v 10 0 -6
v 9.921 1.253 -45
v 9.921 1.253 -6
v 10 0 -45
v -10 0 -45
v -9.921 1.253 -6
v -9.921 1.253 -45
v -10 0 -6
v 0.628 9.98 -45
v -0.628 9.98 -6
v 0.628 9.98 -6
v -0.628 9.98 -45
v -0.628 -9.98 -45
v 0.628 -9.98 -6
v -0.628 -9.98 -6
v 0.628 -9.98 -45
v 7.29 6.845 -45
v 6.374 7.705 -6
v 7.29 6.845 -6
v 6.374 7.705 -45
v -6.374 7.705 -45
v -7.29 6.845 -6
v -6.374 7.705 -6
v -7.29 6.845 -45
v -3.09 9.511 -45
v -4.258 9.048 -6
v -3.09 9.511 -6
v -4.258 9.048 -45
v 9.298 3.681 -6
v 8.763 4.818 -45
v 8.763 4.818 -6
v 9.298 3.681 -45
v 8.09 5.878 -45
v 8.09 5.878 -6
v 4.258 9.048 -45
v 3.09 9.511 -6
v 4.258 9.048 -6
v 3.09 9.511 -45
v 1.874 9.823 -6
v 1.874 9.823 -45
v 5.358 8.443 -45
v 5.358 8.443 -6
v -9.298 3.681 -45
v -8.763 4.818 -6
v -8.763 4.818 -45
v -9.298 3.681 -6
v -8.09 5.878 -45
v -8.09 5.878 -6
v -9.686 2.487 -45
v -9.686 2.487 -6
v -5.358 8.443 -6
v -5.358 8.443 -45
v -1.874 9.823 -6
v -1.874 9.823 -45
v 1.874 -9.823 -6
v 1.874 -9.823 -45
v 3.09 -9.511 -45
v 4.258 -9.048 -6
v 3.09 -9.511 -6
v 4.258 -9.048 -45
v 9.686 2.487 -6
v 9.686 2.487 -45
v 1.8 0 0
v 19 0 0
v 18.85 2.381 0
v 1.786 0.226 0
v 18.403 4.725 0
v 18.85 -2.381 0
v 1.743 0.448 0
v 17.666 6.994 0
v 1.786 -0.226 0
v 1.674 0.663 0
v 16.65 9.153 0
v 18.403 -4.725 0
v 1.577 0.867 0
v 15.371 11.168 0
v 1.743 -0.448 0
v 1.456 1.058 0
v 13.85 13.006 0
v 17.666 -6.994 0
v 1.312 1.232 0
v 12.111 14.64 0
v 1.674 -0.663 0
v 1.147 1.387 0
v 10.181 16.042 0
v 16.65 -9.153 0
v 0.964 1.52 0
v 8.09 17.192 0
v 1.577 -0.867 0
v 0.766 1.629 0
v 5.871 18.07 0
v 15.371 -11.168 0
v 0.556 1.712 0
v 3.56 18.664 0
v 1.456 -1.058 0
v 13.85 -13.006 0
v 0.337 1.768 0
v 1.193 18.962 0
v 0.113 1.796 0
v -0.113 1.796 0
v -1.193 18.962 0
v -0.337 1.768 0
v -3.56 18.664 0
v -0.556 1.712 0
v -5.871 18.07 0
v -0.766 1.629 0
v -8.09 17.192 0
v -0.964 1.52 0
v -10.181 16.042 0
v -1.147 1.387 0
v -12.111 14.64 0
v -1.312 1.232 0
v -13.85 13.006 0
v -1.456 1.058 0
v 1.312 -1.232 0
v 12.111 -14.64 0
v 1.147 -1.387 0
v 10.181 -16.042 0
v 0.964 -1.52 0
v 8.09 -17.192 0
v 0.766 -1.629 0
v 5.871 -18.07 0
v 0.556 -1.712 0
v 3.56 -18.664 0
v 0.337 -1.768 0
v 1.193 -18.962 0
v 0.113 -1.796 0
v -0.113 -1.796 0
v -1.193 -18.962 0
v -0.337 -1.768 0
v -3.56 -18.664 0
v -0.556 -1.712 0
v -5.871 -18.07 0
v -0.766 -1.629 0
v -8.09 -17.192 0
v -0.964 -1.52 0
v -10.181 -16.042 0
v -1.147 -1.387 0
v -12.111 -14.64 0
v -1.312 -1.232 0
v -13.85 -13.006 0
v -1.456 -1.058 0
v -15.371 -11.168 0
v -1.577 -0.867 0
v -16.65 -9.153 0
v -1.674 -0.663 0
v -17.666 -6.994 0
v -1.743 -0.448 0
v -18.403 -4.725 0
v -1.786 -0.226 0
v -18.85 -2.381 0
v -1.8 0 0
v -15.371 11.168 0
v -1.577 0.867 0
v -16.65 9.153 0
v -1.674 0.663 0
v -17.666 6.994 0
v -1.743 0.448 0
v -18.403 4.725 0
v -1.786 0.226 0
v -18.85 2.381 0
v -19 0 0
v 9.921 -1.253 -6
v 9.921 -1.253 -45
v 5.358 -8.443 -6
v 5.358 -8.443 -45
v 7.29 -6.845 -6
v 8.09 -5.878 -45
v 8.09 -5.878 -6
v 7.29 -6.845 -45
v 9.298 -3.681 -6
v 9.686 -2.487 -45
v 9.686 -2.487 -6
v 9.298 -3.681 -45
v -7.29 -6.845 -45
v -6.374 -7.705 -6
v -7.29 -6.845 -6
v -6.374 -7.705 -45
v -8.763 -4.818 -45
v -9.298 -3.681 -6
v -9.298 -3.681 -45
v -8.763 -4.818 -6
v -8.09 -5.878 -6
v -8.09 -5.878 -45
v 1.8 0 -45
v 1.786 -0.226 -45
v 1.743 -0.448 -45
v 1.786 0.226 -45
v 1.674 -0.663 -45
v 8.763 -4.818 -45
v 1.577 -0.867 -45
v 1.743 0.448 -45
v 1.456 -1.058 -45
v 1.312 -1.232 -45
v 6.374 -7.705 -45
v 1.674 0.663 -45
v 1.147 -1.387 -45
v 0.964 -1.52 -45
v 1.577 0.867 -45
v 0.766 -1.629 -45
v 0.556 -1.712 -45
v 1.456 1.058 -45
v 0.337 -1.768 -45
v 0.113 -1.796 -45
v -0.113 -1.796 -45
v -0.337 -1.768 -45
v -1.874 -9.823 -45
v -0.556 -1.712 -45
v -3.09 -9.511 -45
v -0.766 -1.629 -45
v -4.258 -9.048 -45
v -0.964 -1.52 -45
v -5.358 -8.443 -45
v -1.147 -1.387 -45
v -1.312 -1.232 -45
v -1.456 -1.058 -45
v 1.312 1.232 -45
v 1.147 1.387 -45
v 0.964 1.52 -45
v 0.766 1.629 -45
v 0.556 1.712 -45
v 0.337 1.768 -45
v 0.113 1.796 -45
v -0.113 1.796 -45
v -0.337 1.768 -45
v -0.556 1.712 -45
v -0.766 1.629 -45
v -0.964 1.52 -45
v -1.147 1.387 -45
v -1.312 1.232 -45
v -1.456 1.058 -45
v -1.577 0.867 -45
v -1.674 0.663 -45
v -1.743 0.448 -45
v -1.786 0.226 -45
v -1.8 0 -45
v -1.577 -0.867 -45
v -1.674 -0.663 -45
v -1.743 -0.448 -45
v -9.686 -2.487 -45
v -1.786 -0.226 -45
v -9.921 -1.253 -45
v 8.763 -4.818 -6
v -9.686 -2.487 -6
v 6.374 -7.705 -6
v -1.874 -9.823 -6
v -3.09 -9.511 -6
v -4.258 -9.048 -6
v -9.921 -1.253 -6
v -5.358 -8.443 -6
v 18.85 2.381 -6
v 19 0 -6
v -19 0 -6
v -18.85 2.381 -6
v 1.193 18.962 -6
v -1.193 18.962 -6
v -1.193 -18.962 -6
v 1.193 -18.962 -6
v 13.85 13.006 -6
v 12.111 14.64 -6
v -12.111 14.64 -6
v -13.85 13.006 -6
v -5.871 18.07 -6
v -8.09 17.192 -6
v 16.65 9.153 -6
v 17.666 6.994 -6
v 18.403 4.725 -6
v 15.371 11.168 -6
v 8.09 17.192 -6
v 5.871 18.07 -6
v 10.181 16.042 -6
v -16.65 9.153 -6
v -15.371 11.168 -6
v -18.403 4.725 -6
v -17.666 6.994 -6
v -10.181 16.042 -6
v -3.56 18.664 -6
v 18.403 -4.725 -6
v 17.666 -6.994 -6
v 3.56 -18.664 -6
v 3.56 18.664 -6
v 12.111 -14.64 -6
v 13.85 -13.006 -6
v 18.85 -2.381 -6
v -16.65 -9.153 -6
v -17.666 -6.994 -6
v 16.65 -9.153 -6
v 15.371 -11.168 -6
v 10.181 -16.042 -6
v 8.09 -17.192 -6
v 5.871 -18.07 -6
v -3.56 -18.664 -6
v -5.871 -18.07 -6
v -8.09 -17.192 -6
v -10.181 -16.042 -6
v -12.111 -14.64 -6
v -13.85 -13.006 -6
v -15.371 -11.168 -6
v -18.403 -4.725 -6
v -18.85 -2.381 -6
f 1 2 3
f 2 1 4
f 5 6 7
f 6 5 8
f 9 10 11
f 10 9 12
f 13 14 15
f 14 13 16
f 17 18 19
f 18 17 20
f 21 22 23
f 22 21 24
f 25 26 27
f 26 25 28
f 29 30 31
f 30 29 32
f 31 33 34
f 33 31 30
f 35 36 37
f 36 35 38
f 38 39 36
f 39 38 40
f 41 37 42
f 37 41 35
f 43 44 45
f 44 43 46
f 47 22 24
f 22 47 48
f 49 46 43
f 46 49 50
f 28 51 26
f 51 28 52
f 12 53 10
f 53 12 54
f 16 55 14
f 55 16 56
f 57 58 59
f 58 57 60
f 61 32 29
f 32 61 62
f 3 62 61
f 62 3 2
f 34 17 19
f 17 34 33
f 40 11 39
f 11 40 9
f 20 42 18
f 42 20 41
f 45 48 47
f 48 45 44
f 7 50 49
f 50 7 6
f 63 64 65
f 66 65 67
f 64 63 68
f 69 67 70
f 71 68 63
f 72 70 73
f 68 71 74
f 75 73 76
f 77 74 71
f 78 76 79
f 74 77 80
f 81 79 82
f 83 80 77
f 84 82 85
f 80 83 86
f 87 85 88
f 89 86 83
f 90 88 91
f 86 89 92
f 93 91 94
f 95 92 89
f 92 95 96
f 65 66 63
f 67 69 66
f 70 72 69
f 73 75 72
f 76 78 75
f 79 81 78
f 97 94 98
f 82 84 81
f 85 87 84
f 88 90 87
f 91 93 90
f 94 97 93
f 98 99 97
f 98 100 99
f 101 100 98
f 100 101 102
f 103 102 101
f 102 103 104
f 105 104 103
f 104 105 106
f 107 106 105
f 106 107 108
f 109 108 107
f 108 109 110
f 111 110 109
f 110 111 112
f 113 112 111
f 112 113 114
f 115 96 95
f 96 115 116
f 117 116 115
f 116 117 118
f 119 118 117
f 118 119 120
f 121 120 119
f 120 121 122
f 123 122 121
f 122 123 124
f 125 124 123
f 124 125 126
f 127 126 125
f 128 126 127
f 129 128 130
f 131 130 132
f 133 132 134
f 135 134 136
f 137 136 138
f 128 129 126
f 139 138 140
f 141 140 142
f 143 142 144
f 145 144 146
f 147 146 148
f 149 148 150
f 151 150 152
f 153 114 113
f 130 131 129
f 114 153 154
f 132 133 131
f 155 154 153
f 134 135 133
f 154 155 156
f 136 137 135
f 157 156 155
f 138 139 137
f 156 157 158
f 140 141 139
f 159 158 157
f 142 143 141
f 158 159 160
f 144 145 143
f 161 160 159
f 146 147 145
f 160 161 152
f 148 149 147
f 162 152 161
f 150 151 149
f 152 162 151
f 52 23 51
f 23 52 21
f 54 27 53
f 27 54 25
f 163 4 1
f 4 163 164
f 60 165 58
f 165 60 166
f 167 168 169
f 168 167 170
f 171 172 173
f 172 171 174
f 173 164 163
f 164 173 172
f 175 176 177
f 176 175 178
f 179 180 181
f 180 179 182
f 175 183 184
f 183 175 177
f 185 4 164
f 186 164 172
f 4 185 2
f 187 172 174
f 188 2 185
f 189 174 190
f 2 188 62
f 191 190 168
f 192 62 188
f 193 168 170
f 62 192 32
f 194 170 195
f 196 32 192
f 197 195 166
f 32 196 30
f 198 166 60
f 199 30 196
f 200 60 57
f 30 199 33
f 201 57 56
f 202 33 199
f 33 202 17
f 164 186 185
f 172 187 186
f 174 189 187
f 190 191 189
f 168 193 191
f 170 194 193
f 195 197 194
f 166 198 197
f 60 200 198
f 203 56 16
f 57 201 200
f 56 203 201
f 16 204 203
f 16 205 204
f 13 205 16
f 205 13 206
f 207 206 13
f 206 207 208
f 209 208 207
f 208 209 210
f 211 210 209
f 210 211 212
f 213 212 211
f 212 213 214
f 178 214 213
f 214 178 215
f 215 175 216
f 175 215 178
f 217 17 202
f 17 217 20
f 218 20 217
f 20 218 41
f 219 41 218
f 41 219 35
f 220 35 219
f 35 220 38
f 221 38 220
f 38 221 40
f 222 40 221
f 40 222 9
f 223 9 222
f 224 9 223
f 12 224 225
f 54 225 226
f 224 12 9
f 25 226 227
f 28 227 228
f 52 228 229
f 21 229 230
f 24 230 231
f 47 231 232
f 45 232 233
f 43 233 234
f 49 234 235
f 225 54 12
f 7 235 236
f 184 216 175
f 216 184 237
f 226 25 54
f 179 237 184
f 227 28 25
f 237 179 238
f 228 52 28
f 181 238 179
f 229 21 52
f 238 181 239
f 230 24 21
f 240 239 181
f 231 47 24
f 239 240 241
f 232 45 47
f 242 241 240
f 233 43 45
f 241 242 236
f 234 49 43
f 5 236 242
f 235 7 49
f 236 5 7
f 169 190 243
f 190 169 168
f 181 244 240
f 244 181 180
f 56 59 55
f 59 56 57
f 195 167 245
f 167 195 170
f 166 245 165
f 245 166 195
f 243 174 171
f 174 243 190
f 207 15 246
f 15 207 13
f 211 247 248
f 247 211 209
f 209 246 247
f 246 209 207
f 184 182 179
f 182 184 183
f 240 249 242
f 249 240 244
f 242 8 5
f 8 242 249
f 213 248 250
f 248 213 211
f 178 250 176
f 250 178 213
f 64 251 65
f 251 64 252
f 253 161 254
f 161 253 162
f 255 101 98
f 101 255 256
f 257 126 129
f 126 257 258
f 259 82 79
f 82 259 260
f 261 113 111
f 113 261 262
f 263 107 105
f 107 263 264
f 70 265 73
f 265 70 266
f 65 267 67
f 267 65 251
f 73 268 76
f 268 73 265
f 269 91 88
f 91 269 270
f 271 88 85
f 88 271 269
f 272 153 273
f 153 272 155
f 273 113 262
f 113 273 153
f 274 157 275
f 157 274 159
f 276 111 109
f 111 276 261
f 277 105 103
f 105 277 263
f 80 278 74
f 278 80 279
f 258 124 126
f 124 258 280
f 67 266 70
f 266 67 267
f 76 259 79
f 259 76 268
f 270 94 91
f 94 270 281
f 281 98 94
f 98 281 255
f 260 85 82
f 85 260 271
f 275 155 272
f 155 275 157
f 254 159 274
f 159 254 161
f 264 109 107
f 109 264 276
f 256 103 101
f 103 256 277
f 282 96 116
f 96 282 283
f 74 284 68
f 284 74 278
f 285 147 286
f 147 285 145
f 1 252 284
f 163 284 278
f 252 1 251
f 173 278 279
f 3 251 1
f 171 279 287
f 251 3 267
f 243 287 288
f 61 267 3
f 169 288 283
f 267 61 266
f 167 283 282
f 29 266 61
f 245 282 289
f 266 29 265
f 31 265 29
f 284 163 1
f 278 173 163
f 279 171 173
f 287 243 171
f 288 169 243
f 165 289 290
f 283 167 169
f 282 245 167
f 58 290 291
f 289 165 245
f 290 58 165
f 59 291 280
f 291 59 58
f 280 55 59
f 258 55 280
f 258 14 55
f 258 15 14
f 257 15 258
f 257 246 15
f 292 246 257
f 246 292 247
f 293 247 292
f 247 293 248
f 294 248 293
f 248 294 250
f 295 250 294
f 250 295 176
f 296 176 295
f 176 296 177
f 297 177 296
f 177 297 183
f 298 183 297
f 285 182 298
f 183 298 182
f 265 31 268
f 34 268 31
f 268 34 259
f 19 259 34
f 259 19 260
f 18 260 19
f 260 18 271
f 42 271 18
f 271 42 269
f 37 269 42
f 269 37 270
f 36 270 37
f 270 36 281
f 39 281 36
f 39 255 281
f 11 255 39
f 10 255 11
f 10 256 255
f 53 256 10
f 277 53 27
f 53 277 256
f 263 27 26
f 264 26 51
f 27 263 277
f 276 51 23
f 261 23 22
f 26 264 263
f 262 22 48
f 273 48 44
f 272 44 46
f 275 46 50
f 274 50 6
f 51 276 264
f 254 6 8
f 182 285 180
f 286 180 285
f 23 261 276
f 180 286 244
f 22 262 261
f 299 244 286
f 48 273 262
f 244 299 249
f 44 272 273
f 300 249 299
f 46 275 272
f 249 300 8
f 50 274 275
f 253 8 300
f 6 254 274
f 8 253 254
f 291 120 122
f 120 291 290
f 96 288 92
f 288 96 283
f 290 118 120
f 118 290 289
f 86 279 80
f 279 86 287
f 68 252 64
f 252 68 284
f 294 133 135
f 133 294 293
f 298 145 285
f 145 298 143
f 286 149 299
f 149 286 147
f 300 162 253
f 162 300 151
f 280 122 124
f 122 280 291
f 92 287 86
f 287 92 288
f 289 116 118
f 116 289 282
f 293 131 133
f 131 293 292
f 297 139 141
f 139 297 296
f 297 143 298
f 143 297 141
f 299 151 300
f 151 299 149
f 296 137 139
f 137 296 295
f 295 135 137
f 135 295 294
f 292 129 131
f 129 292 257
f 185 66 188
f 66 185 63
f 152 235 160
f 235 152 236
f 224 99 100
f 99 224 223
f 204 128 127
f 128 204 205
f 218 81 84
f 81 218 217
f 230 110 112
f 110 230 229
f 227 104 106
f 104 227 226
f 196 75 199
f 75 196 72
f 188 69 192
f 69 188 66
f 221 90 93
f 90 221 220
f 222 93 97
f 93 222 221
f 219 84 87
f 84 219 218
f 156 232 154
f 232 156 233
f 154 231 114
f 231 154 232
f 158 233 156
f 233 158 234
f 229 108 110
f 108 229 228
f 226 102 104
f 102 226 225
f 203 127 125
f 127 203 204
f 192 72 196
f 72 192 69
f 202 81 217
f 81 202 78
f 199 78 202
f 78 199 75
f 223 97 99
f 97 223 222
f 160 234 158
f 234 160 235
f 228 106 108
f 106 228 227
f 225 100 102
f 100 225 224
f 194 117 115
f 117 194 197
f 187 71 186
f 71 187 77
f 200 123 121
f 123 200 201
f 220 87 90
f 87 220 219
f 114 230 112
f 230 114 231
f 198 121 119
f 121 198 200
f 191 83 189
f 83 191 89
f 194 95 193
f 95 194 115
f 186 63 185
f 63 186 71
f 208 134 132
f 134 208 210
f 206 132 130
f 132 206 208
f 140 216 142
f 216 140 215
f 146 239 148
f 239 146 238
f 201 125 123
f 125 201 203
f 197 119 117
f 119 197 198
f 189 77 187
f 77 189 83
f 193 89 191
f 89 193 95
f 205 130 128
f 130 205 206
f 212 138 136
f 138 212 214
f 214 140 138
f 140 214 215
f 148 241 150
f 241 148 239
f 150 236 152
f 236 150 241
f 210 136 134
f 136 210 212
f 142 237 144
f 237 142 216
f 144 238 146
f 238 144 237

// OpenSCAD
$fn = 50;


difference() {
	union() {
		translate(v = [0, 0, -45.0000000000]) {
			cylinder(h = 45, r = 10.0000000000);
		}
		translate(v = [0, 0, -6.0000000000]) {
			cylinder(h = 6, r = 19.0000000000);
		}
	}
	union() {
		#translate(v = [0, 0, -45]) {
			cylinder(h = 45, r = 1.8000000000);
		}
	}
}
